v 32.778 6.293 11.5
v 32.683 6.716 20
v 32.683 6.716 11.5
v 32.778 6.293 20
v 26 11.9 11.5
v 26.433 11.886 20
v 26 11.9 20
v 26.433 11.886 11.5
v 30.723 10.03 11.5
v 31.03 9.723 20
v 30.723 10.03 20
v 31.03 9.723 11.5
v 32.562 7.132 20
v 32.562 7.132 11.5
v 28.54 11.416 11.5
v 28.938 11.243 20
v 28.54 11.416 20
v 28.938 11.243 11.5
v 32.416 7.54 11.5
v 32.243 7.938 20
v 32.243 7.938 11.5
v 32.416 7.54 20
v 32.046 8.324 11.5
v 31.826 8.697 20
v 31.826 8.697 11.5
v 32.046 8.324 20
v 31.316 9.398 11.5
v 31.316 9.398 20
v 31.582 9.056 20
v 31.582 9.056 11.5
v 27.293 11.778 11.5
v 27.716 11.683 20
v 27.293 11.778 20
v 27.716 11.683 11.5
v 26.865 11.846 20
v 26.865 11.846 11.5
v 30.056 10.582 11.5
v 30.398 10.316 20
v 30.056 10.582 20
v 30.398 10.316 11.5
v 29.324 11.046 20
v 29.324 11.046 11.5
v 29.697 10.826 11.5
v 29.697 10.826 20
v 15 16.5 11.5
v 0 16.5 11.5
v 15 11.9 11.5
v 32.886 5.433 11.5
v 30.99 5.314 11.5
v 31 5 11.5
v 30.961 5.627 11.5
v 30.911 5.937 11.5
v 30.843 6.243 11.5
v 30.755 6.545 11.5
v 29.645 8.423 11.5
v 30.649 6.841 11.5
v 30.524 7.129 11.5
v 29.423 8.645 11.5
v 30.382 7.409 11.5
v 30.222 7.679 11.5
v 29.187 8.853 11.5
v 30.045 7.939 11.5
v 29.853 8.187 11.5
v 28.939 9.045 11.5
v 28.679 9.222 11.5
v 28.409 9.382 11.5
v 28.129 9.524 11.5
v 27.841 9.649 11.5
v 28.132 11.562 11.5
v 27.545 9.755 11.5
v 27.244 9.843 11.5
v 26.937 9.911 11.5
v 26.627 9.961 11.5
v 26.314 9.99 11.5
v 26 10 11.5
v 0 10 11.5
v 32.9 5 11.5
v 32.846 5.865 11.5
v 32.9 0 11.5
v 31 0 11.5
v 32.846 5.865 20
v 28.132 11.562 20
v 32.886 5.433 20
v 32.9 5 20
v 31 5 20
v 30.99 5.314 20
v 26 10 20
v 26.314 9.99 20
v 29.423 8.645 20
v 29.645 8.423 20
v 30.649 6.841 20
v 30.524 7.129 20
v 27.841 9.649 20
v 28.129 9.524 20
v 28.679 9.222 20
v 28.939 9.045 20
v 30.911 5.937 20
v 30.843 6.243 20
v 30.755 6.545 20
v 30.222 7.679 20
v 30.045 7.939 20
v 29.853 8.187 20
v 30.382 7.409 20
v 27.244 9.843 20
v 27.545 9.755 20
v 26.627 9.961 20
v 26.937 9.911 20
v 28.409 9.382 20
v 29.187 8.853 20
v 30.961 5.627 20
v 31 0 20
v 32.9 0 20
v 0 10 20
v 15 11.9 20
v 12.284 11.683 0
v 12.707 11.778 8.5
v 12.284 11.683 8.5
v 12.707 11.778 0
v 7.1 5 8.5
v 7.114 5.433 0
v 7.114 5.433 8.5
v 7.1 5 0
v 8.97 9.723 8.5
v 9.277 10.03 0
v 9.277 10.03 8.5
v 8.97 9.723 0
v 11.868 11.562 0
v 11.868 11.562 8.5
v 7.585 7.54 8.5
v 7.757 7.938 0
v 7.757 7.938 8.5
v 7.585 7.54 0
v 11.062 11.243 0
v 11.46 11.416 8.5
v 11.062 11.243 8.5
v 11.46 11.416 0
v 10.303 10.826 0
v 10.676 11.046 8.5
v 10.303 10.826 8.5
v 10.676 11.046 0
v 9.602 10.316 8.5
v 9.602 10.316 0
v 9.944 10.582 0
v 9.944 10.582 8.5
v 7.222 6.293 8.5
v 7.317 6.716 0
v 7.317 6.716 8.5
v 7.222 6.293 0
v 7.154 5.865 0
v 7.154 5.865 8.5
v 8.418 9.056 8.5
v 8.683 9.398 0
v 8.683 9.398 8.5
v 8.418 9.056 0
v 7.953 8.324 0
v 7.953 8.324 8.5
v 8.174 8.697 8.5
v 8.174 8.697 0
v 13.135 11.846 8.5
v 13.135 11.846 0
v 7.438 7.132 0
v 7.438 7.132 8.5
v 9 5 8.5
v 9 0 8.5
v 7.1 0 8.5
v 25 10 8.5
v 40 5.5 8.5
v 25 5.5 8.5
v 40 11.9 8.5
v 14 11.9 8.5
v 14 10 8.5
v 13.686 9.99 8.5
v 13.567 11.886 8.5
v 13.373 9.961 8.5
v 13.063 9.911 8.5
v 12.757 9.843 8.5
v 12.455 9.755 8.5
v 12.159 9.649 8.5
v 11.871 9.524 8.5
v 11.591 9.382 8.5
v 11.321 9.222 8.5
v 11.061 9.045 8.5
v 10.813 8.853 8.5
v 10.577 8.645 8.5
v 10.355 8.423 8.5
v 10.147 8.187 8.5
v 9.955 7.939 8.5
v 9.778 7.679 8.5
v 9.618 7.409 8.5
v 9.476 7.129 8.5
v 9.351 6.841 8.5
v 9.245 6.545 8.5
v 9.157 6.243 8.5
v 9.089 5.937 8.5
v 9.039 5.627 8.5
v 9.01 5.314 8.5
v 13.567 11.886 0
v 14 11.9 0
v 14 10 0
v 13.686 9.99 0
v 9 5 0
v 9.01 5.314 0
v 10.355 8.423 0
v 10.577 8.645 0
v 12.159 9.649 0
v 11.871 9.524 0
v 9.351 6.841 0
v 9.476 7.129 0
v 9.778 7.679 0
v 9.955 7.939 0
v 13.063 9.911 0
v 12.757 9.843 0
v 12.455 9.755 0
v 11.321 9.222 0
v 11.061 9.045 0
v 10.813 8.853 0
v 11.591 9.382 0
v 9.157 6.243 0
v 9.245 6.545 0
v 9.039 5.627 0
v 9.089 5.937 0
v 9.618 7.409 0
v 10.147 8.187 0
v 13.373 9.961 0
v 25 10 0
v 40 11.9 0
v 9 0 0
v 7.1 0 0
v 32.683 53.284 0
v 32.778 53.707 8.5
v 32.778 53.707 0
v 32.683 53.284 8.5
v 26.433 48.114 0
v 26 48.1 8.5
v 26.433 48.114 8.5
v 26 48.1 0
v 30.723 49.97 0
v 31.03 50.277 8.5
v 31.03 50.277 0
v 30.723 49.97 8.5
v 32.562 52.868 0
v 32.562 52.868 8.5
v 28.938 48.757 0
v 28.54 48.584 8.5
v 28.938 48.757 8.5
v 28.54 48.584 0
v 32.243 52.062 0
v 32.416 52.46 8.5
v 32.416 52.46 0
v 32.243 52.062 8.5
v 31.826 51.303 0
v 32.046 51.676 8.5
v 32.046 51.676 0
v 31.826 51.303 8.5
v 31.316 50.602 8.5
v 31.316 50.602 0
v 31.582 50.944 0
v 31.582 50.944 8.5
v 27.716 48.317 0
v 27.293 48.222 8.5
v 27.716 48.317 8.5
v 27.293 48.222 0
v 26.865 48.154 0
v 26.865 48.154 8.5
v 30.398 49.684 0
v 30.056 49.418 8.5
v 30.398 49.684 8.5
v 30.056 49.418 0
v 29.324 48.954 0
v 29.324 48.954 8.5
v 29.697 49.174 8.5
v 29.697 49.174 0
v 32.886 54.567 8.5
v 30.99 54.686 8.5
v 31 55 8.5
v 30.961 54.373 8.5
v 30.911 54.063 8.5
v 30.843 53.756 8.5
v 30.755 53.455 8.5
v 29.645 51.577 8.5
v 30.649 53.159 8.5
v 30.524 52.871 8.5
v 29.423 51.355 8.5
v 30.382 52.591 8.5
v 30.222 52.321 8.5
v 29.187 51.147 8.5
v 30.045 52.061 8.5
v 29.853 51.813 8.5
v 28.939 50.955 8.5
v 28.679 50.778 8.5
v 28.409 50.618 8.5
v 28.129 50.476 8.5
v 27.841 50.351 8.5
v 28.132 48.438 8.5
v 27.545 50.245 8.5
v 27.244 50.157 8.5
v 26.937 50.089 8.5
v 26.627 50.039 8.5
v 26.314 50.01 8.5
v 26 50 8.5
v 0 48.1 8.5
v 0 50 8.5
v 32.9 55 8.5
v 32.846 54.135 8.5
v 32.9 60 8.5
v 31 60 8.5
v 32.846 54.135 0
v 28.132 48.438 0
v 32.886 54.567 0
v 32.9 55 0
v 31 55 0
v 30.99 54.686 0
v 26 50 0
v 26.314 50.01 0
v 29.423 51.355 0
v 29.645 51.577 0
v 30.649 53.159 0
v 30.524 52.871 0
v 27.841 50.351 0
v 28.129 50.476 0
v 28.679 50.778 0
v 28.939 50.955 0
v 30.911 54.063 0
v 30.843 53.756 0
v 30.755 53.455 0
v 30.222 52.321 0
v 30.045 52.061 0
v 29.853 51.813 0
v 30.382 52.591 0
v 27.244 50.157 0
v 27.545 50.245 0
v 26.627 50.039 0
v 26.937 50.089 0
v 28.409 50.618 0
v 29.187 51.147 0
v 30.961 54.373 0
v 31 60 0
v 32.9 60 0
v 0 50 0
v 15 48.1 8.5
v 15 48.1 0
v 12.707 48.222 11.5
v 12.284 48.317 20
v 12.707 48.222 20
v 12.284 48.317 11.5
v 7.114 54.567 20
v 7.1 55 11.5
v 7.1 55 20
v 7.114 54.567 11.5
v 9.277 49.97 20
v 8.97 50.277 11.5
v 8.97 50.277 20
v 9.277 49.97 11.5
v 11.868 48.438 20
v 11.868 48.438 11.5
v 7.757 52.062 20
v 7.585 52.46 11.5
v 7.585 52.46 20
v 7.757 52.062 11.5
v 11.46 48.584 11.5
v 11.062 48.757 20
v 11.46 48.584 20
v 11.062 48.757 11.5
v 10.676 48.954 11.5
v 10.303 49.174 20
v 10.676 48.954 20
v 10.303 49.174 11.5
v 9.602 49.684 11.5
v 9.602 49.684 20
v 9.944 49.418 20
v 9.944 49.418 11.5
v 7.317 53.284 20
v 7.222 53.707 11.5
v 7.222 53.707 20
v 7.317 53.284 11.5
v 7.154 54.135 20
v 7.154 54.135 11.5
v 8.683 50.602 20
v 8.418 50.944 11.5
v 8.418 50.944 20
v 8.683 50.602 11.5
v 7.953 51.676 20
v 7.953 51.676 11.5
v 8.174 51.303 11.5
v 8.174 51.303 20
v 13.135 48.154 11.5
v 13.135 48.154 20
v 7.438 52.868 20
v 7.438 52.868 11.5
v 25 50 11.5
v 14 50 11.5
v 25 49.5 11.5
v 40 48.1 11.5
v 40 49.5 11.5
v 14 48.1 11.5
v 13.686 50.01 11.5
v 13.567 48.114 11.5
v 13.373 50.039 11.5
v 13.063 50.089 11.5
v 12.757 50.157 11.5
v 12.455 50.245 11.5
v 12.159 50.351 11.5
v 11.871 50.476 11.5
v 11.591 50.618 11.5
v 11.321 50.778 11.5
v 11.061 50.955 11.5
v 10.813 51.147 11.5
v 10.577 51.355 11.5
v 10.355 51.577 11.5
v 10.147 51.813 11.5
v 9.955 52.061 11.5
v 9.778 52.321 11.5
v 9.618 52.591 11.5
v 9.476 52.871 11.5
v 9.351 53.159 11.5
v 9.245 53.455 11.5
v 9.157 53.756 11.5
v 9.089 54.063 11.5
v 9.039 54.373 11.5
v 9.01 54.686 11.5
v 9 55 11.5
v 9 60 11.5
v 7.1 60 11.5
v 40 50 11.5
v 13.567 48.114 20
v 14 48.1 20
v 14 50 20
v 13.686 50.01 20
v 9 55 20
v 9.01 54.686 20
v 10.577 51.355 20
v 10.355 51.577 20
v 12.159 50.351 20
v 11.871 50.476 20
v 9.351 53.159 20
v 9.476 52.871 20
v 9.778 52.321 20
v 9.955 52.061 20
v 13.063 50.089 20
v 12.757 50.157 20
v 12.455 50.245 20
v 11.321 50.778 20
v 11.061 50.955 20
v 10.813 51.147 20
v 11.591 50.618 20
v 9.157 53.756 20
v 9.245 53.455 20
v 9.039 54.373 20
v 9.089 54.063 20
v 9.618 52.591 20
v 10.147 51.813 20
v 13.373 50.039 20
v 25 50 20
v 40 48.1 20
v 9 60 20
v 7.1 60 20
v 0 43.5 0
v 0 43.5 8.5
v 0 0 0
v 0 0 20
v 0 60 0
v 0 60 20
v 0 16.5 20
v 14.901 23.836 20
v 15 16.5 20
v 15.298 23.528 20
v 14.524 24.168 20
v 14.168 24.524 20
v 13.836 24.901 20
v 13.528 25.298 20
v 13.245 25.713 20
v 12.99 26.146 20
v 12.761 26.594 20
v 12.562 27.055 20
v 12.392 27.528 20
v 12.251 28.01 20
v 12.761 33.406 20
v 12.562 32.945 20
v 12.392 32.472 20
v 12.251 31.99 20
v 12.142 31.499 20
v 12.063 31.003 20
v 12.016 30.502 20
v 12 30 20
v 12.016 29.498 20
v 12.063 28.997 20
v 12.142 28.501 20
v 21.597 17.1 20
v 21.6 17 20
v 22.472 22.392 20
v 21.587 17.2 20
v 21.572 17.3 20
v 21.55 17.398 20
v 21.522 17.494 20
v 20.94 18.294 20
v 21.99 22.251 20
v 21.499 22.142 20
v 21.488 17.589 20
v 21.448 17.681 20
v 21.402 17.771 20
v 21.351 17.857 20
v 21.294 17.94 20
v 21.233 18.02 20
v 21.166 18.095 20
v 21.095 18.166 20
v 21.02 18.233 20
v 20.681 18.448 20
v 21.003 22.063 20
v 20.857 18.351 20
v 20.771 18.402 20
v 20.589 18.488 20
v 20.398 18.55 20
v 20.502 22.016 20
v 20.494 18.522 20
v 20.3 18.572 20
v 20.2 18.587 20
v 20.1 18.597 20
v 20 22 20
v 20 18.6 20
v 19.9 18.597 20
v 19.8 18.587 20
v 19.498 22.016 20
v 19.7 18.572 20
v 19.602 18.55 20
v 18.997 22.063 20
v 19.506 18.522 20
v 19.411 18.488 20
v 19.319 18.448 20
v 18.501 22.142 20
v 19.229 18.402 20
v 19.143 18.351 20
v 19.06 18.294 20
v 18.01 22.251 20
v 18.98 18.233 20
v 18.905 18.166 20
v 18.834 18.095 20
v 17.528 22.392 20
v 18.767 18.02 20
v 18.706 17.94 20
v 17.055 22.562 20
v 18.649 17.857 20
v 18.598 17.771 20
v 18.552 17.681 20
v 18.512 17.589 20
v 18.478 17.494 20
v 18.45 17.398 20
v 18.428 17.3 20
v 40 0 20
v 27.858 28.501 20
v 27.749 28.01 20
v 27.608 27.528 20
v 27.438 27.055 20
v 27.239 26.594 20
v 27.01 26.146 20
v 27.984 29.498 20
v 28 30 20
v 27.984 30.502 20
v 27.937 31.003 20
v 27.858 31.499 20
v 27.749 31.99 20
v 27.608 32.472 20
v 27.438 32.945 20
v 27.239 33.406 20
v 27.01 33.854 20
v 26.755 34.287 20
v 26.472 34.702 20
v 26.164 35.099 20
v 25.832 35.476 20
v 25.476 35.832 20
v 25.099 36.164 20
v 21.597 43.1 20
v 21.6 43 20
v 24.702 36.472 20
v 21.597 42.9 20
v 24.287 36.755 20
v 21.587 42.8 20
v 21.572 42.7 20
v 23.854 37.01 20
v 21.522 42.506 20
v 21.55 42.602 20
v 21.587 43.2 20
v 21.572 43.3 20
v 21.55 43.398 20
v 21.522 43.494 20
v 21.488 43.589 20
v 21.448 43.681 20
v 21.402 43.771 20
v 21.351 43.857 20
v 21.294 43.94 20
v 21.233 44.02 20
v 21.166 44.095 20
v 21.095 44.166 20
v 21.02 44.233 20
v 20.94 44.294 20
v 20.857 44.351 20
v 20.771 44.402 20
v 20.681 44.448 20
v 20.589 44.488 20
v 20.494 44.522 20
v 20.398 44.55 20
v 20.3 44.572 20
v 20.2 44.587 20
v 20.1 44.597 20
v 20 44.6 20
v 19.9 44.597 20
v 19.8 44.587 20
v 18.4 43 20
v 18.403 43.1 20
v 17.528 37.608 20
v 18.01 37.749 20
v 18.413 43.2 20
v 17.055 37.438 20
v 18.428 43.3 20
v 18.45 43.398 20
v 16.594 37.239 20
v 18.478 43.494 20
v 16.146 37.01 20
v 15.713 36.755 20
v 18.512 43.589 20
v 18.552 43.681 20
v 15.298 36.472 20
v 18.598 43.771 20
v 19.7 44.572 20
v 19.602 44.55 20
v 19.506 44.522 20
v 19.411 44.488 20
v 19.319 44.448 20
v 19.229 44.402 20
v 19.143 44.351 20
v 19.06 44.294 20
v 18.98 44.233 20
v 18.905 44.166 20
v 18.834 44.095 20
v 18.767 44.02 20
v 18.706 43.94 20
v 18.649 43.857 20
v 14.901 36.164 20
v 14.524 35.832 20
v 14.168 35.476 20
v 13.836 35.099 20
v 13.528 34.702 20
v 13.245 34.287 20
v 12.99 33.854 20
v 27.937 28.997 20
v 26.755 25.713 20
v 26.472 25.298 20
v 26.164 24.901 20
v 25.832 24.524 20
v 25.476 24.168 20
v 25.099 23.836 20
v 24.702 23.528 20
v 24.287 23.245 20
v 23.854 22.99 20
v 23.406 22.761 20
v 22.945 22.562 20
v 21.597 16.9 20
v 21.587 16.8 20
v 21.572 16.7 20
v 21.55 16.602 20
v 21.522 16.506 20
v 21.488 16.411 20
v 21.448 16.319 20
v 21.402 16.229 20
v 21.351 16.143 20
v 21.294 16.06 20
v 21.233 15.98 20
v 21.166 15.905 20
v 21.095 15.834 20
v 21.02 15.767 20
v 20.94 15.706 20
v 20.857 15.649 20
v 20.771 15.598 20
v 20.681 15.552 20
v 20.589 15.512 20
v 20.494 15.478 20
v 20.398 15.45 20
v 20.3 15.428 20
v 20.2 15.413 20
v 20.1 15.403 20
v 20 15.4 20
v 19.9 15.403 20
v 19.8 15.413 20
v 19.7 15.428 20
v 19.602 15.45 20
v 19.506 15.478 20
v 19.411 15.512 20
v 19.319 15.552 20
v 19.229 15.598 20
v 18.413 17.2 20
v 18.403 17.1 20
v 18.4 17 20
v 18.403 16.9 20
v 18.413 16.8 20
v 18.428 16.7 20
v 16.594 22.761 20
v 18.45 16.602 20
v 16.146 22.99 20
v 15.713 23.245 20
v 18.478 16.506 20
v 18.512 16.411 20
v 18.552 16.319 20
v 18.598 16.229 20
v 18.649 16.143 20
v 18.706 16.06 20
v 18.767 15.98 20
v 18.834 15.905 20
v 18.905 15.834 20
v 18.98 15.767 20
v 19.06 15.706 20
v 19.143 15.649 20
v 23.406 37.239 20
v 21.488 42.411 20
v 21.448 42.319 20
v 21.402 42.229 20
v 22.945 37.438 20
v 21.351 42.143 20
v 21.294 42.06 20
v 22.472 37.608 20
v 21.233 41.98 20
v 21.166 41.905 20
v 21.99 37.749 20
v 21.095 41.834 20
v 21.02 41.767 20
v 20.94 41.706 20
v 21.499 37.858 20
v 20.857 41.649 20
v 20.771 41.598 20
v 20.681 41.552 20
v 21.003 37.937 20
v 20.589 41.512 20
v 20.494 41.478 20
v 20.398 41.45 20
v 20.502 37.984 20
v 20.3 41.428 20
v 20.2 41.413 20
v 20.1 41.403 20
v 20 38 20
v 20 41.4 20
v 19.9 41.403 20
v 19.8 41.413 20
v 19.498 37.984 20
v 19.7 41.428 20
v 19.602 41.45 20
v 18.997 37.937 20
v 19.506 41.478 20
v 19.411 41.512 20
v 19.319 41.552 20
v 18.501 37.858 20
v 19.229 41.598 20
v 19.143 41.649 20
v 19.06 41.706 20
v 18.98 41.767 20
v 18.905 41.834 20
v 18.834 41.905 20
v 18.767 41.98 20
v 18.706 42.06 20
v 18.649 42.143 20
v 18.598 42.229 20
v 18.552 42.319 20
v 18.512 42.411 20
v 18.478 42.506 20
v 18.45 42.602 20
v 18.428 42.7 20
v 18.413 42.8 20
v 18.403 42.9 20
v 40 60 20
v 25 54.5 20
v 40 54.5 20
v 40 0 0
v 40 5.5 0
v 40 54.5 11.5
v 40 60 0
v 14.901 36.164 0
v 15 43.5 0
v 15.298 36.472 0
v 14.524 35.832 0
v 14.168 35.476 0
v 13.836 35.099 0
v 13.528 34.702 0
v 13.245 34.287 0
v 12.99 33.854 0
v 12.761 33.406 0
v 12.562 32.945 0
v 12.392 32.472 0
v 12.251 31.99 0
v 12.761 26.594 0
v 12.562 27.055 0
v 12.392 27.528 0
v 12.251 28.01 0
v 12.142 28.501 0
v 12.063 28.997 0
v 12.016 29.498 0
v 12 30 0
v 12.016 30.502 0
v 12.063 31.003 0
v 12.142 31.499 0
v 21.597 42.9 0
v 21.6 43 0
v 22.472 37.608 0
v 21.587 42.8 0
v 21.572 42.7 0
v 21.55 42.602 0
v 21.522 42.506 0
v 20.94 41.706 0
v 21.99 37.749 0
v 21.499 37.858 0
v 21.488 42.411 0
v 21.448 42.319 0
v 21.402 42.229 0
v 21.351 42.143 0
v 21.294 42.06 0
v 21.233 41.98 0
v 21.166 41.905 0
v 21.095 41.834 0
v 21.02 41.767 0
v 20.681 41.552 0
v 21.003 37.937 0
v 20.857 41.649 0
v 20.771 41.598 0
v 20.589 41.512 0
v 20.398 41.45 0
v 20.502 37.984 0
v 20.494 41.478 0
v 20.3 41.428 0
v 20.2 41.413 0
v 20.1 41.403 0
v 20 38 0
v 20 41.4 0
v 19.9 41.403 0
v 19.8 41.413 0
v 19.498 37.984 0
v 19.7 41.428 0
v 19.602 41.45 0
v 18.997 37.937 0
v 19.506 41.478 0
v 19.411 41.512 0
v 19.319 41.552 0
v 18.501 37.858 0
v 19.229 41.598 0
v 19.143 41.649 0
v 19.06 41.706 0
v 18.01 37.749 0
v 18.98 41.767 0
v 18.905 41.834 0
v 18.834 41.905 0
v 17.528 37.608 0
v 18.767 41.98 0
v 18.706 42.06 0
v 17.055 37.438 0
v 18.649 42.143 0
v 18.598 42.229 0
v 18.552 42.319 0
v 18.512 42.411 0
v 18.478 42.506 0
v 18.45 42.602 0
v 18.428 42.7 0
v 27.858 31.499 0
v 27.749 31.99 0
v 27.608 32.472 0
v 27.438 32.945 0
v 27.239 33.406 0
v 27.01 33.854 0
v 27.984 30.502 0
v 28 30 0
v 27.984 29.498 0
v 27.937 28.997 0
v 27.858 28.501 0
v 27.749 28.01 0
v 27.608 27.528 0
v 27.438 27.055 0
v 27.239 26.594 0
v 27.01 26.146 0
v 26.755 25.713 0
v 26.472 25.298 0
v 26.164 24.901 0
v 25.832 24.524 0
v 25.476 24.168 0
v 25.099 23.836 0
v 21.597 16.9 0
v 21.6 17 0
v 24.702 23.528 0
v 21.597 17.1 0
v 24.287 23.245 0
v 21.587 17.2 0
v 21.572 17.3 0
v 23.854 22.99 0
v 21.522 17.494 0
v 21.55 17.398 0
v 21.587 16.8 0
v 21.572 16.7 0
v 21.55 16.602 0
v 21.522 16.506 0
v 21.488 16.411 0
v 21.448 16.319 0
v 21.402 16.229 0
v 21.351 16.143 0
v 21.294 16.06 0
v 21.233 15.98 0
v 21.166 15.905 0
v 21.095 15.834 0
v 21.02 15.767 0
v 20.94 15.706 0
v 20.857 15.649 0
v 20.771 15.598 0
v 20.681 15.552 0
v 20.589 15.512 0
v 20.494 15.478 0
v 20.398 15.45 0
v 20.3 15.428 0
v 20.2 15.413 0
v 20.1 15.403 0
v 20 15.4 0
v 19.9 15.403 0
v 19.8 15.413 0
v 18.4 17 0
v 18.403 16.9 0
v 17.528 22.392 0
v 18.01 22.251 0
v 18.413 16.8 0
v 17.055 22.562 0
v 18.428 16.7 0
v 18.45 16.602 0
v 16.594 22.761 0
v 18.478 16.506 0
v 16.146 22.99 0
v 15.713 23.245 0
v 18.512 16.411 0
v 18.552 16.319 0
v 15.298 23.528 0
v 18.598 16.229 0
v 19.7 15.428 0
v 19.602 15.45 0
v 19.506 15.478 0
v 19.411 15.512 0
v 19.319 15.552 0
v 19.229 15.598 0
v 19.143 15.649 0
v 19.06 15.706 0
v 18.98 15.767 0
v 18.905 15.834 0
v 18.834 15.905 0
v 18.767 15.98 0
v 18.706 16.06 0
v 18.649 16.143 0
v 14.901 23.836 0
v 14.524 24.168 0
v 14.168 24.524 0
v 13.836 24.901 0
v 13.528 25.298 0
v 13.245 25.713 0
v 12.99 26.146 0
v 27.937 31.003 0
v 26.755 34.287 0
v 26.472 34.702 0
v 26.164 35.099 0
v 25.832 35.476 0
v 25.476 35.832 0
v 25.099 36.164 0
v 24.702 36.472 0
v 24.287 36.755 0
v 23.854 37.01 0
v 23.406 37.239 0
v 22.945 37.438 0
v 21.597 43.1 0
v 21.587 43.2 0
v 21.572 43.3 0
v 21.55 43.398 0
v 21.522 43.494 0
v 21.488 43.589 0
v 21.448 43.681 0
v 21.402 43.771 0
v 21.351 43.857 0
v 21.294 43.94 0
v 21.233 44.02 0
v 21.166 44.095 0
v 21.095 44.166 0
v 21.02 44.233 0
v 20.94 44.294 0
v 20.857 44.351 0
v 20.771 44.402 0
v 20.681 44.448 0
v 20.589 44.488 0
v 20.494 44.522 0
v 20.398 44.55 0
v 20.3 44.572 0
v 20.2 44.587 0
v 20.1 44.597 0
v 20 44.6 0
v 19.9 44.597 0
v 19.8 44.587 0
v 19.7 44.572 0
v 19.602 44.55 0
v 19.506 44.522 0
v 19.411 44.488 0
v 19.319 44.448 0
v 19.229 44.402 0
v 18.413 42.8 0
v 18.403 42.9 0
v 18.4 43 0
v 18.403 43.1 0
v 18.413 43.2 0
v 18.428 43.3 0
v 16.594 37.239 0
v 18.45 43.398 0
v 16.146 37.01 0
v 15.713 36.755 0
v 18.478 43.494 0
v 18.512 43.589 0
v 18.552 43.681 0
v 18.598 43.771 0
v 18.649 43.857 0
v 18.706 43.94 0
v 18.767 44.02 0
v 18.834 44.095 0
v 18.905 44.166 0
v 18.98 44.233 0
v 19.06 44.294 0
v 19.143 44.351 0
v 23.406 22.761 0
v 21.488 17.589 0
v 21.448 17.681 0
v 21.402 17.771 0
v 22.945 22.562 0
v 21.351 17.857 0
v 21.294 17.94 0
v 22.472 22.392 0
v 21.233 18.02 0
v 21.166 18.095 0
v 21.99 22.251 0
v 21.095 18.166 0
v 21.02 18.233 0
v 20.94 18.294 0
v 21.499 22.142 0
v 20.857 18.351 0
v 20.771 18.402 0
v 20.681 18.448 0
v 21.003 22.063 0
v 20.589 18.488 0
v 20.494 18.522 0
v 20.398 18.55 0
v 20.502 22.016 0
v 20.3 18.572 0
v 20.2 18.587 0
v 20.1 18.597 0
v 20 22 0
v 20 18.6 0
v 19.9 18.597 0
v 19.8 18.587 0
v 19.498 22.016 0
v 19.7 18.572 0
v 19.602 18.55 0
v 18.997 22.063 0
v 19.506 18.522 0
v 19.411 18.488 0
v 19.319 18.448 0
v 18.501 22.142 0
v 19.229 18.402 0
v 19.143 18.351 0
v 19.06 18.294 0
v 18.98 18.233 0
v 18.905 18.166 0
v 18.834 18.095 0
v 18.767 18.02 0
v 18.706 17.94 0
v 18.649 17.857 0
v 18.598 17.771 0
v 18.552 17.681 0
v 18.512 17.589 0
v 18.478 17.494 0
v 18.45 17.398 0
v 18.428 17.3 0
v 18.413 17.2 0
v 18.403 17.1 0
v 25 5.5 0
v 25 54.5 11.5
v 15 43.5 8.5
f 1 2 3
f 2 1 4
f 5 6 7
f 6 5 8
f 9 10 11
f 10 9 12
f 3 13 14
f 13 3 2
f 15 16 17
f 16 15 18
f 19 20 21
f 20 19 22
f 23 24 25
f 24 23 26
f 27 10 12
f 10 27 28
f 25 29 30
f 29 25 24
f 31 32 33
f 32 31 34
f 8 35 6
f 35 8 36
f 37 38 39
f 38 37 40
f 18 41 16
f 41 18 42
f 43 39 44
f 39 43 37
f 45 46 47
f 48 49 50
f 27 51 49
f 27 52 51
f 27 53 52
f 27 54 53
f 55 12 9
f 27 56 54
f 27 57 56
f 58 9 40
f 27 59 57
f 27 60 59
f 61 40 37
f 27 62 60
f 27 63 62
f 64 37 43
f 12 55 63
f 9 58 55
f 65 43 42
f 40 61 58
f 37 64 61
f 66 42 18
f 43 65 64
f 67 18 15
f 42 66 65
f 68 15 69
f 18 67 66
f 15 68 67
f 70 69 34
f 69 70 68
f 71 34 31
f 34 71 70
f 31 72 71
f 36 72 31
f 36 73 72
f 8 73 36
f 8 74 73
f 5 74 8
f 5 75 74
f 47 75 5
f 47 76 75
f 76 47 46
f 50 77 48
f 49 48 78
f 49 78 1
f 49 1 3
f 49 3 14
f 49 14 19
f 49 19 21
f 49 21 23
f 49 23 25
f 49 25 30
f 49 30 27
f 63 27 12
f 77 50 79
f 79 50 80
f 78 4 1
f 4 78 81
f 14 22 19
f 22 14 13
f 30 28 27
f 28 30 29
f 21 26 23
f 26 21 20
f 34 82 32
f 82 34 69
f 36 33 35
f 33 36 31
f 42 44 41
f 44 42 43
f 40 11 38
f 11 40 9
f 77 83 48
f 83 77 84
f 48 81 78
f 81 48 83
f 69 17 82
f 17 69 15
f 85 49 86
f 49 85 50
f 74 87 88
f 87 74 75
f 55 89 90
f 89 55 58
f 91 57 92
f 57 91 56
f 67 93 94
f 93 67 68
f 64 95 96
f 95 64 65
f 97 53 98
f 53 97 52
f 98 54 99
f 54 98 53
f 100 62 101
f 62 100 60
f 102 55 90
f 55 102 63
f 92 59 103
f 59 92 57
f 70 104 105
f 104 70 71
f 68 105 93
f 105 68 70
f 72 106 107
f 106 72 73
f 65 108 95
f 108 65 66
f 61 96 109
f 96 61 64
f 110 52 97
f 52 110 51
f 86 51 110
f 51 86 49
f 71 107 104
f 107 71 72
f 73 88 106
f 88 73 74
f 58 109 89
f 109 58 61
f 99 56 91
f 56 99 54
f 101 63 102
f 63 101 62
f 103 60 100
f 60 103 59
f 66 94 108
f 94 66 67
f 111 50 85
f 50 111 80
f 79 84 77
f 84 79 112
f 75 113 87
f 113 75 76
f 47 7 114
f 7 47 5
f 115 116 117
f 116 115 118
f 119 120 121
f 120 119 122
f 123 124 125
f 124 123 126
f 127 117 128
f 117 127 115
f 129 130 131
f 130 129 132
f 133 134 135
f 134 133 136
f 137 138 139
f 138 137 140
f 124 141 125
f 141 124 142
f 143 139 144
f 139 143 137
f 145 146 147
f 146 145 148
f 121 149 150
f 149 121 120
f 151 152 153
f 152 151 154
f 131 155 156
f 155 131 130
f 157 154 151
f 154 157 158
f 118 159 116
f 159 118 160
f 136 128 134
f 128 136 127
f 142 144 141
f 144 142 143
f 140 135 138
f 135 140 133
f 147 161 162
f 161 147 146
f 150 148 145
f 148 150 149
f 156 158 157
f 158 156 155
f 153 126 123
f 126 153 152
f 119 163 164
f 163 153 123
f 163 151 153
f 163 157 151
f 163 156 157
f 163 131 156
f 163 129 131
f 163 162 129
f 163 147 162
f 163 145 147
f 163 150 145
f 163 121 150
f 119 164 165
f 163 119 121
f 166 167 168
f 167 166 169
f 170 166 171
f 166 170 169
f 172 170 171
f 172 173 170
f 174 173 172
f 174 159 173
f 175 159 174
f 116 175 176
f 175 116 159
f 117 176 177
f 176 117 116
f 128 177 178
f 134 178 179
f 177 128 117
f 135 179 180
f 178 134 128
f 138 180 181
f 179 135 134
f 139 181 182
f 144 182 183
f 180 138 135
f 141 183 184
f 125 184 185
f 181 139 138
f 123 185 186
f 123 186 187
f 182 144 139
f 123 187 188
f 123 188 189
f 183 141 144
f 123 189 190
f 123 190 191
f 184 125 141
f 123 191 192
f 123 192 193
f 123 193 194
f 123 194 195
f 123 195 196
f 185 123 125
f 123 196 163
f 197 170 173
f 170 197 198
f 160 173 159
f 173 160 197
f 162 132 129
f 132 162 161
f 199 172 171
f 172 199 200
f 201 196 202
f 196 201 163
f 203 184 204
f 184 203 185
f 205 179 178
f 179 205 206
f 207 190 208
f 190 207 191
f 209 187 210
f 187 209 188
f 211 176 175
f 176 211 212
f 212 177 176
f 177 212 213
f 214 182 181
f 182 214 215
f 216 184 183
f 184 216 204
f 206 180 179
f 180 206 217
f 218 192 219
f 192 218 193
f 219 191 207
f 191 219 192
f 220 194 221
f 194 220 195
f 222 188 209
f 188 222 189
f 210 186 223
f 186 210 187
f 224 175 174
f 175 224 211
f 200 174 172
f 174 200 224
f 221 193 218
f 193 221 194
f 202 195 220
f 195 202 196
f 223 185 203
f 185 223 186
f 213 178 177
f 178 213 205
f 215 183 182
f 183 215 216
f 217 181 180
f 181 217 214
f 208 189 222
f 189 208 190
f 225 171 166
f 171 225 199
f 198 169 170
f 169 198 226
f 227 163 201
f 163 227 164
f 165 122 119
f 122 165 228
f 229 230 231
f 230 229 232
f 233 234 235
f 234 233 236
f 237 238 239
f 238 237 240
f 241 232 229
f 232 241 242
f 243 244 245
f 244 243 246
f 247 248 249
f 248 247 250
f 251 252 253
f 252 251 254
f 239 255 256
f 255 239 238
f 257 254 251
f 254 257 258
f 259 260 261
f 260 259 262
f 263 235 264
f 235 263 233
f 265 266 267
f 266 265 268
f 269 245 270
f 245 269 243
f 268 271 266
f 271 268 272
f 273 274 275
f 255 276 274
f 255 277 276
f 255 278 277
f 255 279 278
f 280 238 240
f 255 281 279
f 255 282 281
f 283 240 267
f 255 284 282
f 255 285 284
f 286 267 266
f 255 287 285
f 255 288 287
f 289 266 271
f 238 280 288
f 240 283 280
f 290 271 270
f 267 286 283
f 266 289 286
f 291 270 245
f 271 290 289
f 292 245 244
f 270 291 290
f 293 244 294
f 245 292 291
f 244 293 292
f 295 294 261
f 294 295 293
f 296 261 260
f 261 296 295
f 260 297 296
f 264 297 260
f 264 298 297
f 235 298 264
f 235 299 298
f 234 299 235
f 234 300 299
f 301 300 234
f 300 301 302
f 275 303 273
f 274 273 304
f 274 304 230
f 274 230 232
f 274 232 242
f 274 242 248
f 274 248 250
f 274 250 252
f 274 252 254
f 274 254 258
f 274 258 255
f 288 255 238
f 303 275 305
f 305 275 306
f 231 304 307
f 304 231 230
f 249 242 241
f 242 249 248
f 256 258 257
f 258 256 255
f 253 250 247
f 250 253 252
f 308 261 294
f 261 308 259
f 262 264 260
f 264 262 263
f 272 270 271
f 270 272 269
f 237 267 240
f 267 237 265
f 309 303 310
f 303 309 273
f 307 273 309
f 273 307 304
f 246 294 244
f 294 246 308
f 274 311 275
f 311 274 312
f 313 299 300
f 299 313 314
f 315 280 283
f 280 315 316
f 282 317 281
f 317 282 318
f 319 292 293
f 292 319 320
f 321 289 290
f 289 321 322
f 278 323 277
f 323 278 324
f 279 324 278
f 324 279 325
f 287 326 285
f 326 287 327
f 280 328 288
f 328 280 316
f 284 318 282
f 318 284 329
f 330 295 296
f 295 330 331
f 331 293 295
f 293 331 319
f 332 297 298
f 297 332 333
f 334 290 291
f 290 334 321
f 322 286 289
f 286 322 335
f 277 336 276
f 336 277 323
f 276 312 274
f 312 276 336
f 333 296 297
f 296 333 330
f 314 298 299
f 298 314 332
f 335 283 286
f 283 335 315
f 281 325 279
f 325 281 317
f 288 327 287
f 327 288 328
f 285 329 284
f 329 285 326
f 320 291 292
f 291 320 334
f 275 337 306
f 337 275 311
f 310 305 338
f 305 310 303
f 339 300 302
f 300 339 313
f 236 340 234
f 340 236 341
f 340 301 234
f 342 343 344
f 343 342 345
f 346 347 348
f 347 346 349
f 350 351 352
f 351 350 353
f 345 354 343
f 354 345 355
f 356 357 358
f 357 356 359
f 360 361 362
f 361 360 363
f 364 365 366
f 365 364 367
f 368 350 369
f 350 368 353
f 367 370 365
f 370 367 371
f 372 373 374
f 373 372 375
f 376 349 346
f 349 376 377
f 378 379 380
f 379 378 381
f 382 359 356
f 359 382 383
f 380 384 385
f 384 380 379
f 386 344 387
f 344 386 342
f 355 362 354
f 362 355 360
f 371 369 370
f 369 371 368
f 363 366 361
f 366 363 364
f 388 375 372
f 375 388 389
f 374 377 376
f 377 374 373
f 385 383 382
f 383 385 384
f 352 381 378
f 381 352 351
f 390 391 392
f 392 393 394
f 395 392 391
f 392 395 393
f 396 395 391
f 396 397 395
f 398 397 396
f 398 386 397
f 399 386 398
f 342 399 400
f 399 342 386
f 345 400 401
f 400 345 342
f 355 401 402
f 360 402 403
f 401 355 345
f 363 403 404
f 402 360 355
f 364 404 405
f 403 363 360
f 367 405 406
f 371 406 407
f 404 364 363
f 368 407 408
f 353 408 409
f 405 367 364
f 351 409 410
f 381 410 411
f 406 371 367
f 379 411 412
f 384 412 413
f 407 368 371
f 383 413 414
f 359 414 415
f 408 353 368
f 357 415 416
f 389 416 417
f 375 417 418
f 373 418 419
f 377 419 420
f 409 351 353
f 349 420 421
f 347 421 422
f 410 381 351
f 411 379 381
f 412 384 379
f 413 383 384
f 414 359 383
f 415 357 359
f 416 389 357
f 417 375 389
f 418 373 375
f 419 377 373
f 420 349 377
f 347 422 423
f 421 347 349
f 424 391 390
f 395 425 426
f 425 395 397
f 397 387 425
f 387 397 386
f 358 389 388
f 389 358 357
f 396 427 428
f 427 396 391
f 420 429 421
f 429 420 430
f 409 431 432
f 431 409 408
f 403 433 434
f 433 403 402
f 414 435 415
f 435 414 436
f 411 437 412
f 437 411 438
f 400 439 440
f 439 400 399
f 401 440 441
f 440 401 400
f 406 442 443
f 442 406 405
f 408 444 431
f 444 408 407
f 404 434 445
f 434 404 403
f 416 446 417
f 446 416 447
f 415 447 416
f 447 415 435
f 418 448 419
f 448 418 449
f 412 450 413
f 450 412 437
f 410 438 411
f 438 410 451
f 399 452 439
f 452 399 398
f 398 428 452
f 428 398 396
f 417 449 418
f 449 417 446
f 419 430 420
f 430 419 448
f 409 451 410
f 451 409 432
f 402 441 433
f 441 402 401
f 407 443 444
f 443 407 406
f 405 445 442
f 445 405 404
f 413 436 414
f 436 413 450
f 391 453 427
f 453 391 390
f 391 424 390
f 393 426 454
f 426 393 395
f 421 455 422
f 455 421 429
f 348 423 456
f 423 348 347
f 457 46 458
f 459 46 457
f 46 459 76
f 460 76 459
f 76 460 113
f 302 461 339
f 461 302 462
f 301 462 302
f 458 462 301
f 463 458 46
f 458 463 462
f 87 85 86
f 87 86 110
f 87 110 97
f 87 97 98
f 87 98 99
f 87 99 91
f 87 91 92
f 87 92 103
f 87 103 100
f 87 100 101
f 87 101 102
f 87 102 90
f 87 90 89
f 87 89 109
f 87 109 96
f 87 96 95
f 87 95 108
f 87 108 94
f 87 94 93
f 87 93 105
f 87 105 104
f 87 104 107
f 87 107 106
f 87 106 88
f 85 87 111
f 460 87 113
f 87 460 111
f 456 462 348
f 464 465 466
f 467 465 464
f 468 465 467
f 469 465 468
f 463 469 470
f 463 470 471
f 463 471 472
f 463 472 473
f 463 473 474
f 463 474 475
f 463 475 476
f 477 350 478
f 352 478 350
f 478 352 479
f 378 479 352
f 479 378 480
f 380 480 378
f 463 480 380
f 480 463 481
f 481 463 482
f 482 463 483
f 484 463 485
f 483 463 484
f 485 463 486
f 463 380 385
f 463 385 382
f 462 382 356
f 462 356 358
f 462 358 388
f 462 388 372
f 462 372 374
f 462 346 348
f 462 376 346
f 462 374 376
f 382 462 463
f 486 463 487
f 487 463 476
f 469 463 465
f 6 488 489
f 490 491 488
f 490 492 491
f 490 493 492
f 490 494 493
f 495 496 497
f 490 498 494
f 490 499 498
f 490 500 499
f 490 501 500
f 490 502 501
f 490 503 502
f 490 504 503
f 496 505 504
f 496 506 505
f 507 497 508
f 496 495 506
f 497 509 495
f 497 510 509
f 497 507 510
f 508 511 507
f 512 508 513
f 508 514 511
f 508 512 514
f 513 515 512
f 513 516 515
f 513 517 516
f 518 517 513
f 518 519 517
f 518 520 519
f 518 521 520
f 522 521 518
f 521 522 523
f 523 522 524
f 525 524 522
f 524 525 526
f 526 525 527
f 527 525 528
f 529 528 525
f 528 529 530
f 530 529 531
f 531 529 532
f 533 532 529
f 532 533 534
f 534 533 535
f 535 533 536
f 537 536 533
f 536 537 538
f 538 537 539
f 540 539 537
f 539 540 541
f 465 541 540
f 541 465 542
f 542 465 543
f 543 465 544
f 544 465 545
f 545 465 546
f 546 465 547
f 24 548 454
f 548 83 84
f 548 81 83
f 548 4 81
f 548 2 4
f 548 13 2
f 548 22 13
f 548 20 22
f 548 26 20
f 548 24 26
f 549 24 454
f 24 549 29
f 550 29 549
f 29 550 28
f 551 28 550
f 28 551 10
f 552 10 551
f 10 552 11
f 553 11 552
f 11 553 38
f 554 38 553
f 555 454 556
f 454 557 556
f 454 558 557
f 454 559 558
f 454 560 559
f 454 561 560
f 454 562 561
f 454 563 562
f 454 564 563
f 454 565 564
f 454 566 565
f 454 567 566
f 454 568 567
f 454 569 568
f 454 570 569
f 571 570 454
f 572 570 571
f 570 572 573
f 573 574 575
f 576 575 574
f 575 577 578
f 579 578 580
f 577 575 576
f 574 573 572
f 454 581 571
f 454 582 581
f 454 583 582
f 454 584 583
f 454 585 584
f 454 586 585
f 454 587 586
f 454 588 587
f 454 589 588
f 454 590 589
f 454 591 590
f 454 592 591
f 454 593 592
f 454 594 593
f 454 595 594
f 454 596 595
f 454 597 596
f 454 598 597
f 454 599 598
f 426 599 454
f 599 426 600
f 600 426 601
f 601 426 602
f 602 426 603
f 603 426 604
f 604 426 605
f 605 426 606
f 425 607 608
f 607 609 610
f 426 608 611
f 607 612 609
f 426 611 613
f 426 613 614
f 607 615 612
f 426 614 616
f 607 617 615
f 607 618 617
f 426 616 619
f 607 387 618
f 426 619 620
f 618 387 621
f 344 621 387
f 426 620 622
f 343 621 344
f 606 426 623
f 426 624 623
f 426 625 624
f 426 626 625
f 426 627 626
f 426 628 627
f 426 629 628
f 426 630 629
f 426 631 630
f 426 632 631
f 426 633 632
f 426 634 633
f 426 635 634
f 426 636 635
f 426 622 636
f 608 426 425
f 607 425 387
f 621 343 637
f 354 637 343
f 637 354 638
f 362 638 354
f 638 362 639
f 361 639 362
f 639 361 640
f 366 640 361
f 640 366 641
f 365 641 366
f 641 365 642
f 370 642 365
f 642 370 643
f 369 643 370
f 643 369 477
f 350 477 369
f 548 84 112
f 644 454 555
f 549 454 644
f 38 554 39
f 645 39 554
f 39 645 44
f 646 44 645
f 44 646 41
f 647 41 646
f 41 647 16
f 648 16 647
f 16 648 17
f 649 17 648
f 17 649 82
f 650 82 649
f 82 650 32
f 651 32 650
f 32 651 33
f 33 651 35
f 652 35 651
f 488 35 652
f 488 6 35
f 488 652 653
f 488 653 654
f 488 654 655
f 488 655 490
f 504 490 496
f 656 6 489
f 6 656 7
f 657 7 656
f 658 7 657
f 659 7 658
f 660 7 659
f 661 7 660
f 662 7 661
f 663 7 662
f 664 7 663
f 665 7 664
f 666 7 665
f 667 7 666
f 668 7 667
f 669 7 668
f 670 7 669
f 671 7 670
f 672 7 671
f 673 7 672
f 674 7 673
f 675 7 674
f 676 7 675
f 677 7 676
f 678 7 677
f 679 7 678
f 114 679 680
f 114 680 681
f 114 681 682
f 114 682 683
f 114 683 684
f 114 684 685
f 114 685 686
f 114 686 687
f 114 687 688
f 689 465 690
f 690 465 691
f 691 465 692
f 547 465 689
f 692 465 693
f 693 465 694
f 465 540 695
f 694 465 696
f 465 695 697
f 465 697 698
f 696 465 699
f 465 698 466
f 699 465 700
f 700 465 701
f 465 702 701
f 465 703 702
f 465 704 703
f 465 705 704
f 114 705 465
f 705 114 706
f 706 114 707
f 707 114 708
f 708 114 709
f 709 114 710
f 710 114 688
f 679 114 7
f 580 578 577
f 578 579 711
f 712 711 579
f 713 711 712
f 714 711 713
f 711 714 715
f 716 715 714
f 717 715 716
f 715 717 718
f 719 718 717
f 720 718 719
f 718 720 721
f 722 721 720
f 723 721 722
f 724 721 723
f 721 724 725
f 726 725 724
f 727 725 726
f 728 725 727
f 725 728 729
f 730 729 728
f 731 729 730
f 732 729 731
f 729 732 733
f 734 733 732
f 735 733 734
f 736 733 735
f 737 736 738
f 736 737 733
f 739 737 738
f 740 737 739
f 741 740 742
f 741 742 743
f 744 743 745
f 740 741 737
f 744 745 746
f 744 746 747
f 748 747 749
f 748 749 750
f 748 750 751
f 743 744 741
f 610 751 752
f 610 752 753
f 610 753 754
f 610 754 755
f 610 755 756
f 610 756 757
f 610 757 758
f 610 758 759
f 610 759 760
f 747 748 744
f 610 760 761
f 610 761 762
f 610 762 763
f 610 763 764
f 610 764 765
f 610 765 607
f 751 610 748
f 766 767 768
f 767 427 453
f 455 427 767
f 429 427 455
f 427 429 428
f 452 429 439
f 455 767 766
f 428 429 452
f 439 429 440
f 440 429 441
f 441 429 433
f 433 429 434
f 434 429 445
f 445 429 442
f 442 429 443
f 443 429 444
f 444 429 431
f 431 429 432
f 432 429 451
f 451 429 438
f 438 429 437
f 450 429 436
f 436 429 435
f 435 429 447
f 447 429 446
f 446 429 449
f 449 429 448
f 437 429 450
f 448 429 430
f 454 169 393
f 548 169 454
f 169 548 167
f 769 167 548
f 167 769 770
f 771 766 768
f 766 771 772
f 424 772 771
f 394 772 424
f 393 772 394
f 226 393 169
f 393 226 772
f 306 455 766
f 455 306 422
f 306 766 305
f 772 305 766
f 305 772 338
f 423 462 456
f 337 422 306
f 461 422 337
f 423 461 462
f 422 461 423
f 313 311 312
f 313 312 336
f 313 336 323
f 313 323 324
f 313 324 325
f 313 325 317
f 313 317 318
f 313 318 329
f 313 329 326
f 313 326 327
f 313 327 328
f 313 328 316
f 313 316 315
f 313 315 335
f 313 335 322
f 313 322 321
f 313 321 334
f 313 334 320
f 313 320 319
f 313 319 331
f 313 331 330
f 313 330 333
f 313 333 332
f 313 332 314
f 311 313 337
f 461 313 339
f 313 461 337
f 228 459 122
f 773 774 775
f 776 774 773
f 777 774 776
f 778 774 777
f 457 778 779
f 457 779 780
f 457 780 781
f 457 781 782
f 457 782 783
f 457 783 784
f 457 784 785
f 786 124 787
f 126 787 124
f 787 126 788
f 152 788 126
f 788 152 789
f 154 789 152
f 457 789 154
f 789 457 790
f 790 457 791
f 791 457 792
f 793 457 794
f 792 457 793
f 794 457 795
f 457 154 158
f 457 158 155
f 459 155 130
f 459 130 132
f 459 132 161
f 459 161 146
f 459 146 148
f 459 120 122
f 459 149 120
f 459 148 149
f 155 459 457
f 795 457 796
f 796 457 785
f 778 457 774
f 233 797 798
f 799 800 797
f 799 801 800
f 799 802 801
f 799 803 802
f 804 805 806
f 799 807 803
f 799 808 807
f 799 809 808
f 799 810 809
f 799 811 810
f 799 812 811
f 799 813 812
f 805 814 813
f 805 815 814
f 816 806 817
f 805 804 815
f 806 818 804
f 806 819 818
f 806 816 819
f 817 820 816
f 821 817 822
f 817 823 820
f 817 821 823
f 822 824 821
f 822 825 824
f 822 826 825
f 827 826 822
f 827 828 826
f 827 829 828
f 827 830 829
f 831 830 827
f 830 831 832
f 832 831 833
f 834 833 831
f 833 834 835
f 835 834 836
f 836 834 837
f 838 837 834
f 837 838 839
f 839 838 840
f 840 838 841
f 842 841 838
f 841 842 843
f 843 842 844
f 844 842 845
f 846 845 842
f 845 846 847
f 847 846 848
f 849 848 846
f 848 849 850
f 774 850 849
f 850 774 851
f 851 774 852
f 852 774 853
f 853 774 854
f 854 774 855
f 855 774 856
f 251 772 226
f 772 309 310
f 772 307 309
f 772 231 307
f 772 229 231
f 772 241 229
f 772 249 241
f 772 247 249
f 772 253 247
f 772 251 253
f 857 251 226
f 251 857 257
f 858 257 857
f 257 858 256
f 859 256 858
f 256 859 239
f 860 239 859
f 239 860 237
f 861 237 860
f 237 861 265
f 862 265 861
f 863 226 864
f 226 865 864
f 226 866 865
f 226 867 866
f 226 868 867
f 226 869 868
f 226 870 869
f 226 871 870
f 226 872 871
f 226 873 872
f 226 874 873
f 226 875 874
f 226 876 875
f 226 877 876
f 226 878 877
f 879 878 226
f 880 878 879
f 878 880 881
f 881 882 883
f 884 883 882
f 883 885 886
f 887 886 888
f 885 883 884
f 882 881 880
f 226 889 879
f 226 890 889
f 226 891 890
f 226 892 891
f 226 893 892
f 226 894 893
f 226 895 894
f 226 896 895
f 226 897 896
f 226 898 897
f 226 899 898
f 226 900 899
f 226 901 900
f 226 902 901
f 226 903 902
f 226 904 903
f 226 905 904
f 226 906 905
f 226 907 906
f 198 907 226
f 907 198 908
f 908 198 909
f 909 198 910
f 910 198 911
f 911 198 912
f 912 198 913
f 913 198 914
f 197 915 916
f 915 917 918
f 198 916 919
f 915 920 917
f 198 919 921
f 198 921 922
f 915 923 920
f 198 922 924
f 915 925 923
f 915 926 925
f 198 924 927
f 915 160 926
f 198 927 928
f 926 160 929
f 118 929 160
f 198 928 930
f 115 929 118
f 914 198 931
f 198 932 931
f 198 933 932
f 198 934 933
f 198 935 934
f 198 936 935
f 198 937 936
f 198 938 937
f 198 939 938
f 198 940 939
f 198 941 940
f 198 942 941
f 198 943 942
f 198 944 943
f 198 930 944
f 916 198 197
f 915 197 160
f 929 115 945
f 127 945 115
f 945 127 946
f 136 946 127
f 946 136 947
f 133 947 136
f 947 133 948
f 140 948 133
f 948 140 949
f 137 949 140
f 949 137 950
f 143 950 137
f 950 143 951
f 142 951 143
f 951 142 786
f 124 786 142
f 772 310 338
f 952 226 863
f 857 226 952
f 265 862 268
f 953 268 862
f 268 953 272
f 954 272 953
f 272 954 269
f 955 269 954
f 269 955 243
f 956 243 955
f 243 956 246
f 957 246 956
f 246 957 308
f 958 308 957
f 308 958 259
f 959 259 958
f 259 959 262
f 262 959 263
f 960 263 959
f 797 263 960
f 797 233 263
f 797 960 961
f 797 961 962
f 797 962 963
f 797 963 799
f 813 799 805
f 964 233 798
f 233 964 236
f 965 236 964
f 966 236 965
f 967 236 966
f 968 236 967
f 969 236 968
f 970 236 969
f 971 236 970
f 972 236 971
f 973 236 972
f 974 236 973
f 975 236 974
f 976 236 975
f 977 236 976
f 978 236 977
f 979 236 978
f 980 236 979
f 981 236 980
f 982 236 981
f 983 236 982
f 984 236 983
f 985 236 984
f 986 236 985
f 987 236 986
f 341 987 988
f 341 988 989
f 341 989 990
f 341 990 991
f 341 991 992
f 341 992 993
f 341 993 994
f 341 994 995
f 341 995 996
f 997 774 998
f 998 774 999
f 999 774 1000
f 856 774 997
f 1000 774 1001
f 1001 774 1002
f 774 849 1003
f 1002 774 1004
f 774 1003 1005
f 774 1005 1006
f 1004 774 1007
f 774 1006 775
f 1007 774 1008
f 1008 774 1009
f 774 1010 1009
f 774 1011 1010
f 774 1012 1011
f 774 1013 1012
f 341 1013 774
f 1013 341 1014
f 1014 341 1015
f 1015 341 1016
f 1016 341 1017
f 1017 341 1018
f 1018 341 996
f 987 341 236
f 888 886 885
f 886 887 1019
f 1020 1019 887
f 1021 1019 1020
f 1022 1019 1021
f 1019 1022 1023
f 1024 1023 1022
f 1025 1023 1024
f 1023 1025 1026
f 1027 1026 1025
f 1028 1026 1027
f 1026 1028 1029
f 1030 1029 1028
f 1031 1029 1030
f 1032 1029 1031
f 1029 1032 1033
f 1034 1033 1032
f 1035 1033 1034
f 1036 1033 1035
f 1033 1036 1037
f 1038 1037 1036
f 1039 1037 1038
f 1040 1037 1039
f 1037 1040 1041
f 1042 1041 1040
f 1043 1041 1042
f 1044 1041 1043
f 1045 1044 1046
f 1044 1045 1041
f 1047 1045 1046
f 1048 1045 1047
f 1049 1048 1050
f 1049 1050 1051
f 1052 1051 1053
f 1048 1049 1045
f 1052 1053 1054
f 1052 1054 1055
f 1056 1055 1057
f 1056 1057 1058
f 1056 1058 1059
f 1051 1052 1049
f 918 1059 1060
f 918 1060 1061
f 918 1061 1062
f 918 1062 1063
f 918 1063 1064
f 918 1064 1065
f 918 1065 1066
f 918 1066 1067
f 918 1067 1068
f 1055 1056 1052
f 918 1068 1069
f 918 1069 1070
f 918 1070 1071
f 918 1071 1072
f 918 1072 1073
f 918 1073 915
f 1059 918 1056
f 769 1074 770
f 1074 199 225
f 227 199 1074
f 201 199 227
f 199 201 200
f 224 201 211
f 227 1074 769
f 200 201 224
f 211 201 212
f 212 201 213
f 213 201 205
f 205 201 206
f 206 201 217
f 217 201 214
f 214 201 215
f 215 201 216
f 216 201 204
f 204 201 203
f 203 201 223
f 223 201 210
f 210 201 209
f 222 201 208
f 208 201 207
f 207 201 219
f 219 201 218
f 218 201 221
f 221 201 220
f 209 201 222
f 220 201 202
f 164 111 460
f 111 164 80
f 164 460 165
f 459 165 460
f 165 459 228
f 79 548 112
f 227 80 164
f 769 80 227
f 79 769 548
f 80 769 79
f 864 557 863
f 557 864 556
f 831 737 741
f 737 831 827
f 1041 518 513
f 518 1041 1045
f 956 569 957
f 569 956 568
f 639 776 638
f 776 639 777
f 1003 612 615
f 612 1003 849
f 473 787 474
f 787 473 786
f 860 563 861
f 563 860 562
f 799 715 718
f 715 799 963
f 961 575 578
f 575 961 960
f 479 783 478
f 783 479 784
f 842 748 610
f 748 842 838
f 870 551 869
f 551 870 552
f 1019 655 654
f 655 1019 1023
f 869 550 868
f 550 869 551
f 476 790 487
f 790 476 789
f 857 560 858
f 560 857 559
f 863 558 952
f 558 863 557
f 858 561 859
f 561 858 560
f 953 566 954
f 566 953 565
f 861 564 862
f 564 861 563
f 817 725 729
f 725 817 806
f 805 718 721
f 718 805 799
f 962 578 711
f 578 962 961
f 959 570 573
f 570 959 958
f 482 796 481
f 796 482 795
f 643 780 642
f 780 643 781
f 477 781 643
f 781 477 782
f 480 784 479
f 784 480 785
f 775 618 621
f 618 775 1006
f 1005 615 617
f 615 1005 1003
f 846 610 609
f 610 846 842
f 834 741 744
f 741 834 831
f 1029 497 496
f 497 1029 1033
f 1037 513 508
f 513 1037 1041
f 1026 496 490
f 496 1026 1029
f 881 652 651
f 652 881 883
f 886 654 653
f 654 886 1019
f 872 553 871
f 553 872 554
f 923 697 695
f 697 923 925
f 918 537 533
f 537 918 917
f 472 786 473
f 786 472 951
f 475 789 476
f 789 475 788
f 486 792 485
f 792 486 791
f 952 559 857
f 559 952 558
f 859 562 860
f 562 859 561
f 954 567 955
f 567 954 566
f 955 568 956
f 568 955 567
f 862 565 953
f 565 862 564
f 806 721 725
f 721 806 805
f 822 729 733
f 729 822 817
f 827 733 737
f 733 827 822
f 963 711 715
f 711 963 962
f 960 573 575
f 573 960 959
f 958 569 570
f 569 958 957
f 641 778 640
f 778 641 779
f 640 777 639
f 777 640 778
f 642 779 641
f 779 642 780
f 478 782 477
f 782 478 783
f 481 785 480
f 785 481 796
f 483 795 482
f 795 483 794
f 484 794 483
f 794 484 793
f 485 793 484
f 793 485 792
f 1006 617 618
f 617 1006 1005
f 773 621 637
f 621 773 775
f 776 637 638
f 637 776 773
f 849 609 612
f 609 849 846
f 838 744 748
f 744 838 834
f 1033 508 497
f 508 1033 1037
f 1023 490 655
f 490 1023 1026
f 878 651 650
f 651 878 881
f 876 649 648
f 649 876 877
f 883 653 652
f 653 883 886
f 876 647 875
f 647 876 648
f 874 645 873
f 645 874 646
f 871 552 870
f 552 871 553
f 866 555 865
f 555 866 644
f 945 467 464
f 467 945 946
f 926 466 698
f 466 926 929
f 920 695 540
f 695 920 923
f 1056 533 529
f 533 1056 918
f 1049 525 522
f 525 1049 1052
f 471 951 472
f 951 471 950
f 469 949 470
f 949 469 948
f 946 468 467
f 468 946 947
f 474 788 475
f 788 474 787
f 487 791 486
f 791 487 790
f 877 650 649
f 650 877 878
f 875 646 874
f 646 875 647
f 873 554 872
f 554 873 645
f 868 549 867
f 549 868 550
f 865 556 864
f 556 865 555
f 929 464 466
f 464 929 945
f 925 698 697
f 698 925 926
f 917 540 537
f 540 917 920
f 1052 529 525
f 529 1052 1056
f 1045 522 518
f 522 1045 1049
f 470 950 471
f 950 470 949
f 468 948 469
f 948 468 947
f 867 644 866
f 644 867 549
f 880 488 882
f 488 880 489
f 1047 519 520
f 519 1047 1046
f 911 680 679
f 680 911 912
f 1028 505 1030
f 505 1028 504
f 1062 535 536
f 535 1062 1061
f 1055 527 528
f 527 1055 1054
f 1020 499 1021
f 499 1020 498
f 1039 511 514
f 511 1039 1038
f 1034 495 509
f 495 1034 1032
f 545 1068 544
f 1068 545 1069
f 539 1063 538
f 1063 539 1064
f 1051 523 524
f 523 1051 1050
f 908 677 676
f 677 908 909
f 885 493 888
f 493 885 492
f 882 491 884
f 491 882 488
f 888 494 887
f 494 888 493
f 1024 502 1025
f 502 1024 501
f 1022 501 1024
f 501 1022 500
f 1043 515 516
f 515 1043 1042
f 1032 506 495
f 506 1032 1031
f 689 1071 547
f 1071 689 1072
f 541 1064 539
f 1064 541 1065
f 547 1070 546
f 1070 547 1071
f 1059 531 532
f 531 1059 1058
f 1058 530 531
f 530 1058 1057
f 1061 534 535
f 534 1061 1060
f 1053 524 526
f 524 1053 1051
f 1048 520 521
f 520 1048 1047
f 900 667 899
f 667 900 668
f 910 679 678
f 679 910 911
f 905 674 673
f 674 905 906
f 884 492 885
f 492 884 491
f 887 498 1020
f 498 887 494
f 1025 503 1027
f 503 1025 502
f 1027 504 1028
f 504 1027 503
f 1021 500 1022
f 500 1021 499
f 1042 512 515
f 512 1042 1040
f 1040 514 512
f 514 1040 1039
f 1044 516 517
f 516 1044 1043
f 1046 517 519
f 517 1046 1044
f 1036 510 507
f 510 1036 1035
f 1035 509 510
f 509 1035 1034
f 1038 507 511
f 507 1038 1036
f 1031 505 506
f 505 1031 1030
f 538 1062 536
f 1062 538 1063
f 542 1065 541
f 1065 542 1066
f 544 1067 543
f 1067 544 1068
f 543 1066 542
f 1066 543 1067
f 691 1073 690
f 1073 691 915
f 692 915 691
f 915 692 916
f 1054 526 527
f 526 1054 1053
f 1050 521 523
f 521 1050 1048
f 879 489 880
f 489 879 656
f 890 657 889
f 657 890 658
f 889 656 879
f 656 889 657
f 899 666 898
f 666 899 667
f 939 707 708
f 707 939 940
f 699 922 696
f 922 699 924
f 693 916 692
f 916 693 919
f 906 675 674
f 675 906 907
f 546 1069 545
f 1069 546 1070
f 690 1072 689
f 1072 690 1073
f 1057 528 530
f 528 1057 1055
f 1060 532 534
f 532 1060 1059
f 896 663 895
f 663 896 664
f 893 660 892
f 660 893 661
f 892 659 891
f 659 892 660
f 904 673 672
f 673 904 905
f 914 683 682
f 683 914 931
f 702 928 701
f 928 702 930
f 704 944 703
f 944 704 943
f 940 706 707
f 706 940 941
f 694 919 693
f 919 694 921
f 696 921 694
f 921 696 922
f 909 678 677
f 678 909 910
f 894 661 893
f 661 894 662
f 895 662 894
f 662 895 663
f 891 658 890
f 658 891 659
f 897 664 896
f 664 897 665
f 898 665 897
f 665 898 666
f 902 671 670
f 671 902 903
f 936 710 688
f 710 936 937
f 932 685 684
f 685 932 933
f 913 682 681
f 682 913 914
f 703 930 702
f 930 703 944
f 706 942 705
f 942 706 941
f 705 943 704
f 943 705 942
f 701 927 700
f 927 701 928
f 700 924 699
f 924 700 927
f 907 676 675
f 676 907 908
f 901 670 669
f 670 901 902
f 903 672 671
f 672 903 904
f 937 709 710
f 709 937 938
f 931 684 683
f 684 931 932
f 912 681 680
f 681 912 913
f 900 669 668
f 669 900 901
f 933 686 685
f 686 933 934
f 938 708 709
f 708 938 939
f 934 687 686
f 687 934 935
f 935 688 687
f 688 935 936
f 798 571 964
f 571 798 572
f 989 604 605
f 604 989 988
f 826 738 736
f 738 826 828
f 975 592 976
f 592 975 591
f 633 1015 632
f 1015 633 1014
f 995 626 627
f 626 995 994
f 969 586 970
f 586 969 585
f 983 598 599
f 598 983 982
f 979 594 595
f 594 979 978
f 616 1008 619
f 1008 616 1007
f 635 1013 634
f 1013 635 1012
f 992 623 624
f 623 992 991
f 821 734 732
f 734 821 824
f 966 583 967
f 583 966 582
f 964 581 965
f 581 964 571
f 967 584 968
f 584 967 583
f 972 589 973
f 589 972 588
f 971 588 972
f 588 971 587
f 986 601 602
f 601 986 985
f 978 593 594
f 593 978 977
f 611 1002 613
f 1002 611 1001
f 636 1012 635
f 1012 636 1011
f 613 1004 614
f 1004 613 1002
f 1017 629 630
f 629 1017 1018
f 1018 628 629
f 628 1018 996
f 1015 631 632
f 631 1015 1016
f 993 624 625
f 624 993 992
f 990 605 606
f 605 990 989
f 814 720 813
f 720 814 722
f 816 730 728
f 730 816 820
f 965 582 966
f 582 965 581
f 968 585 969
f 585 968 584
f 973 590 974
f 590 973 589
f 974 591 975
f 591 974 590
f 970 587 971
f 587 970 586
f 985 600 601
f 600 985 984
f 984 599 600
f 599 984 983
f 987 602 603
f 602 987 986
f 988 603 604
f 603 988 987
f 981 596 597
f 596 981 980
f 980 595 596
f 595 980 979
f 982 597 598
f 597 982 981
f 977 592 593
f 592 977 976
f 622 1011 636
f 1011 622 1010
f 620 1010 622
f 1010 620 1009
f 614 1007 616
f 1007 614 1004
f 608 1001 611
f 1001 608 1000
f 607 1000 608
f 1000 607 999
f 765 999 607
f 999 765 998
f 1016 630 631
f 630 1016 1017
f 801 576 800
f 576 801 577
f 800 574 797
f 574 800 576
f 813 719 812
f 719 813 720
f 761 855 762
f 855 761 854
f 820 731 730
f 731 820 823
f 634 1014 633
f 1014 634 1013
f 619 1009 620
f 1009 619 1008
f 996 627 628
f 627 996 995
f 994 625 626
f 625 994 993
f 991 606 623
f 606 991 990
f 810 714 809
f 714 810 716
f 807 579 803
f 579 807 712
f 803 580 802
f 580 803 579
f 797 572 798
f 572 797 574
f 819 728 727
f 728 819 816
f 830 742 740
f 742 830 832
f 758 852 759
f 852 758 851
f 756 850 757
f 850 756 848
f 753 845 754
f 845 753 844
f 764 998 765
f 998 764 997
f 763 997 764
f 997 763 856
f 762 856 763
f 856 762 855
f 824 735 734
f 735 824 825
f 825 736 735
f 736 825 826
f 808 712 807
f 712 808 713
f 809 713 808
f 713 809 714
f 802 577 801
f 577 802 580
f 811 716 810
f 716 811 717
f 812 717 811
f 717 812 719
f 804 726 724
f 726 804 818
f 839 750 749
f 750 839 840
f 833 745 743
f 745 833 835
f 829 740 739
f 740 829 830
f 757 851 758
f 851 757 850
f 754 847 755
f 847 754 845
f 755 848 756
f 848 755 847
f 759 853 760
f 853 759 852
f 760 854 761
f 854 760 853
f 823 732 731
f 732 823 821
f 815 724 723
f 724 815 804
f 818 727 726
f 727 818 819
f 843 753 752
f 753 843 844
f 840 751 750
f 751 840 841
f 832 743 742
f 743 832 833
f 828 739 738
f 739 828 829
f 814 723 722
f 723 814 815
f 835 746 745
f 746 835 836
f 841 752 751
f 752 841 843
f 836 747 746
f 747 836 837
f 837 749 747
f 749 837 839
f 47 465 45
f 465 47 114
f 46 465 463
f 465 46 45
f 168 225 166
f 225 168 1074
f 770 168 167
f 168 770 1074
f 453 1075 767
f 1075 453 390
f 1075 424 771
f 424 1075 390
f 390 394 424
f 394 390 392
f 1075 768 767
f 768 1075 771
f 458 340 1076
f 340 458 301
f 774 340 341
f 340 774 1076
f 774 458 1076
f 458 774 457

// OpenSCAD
rr=8;

$fn=100;


module chanal(r_c=5, w_c=1.9, h_c=9, ll=50){
    intersection(){
    difference(){
        cylinder(r=r_c+w_c, h=h_c);
        cylinder(r=r_c, h=h_c);
        }
    cube([r_c+w_c,r_c+w_c,h_c]);
    }
    translate([r_c,-ll,0])cube([w_c,ll,h_c]);
    translate([-ll,r_c,0])cube([ll,w_c,h_c]);
}
    
//    chanal();

module chanal_mm(){
    translate([26,-5,11.5])rotate()chanal();
    translate([14,-5,-0.5])rotate([0,0,90])chanal();

    }


module main(){
difference(){
    cube([40,60,20]);
    translate([20,30,0])cylinder(r=rr,h=30);
    translate([0,10,0])rotate([0])chanal_mm();
    translate([0,50,20])rotate([180])chanal_mm();
    translate([20,17,0])cylinder(r=1.6,h=30);
    translate([20,43,0])cylinder(r=1.6,h=30);
    translate([0,11.5,11.5])cube([15,5,8.5]);
    translate([25,5.5,0])cube([15,5,8.5]);
    translate([25,49.5,11.5])cube([15,5,8.5]);
    translate([0,43.5,0])cube([15,5,8.5]);
}
}
main();
